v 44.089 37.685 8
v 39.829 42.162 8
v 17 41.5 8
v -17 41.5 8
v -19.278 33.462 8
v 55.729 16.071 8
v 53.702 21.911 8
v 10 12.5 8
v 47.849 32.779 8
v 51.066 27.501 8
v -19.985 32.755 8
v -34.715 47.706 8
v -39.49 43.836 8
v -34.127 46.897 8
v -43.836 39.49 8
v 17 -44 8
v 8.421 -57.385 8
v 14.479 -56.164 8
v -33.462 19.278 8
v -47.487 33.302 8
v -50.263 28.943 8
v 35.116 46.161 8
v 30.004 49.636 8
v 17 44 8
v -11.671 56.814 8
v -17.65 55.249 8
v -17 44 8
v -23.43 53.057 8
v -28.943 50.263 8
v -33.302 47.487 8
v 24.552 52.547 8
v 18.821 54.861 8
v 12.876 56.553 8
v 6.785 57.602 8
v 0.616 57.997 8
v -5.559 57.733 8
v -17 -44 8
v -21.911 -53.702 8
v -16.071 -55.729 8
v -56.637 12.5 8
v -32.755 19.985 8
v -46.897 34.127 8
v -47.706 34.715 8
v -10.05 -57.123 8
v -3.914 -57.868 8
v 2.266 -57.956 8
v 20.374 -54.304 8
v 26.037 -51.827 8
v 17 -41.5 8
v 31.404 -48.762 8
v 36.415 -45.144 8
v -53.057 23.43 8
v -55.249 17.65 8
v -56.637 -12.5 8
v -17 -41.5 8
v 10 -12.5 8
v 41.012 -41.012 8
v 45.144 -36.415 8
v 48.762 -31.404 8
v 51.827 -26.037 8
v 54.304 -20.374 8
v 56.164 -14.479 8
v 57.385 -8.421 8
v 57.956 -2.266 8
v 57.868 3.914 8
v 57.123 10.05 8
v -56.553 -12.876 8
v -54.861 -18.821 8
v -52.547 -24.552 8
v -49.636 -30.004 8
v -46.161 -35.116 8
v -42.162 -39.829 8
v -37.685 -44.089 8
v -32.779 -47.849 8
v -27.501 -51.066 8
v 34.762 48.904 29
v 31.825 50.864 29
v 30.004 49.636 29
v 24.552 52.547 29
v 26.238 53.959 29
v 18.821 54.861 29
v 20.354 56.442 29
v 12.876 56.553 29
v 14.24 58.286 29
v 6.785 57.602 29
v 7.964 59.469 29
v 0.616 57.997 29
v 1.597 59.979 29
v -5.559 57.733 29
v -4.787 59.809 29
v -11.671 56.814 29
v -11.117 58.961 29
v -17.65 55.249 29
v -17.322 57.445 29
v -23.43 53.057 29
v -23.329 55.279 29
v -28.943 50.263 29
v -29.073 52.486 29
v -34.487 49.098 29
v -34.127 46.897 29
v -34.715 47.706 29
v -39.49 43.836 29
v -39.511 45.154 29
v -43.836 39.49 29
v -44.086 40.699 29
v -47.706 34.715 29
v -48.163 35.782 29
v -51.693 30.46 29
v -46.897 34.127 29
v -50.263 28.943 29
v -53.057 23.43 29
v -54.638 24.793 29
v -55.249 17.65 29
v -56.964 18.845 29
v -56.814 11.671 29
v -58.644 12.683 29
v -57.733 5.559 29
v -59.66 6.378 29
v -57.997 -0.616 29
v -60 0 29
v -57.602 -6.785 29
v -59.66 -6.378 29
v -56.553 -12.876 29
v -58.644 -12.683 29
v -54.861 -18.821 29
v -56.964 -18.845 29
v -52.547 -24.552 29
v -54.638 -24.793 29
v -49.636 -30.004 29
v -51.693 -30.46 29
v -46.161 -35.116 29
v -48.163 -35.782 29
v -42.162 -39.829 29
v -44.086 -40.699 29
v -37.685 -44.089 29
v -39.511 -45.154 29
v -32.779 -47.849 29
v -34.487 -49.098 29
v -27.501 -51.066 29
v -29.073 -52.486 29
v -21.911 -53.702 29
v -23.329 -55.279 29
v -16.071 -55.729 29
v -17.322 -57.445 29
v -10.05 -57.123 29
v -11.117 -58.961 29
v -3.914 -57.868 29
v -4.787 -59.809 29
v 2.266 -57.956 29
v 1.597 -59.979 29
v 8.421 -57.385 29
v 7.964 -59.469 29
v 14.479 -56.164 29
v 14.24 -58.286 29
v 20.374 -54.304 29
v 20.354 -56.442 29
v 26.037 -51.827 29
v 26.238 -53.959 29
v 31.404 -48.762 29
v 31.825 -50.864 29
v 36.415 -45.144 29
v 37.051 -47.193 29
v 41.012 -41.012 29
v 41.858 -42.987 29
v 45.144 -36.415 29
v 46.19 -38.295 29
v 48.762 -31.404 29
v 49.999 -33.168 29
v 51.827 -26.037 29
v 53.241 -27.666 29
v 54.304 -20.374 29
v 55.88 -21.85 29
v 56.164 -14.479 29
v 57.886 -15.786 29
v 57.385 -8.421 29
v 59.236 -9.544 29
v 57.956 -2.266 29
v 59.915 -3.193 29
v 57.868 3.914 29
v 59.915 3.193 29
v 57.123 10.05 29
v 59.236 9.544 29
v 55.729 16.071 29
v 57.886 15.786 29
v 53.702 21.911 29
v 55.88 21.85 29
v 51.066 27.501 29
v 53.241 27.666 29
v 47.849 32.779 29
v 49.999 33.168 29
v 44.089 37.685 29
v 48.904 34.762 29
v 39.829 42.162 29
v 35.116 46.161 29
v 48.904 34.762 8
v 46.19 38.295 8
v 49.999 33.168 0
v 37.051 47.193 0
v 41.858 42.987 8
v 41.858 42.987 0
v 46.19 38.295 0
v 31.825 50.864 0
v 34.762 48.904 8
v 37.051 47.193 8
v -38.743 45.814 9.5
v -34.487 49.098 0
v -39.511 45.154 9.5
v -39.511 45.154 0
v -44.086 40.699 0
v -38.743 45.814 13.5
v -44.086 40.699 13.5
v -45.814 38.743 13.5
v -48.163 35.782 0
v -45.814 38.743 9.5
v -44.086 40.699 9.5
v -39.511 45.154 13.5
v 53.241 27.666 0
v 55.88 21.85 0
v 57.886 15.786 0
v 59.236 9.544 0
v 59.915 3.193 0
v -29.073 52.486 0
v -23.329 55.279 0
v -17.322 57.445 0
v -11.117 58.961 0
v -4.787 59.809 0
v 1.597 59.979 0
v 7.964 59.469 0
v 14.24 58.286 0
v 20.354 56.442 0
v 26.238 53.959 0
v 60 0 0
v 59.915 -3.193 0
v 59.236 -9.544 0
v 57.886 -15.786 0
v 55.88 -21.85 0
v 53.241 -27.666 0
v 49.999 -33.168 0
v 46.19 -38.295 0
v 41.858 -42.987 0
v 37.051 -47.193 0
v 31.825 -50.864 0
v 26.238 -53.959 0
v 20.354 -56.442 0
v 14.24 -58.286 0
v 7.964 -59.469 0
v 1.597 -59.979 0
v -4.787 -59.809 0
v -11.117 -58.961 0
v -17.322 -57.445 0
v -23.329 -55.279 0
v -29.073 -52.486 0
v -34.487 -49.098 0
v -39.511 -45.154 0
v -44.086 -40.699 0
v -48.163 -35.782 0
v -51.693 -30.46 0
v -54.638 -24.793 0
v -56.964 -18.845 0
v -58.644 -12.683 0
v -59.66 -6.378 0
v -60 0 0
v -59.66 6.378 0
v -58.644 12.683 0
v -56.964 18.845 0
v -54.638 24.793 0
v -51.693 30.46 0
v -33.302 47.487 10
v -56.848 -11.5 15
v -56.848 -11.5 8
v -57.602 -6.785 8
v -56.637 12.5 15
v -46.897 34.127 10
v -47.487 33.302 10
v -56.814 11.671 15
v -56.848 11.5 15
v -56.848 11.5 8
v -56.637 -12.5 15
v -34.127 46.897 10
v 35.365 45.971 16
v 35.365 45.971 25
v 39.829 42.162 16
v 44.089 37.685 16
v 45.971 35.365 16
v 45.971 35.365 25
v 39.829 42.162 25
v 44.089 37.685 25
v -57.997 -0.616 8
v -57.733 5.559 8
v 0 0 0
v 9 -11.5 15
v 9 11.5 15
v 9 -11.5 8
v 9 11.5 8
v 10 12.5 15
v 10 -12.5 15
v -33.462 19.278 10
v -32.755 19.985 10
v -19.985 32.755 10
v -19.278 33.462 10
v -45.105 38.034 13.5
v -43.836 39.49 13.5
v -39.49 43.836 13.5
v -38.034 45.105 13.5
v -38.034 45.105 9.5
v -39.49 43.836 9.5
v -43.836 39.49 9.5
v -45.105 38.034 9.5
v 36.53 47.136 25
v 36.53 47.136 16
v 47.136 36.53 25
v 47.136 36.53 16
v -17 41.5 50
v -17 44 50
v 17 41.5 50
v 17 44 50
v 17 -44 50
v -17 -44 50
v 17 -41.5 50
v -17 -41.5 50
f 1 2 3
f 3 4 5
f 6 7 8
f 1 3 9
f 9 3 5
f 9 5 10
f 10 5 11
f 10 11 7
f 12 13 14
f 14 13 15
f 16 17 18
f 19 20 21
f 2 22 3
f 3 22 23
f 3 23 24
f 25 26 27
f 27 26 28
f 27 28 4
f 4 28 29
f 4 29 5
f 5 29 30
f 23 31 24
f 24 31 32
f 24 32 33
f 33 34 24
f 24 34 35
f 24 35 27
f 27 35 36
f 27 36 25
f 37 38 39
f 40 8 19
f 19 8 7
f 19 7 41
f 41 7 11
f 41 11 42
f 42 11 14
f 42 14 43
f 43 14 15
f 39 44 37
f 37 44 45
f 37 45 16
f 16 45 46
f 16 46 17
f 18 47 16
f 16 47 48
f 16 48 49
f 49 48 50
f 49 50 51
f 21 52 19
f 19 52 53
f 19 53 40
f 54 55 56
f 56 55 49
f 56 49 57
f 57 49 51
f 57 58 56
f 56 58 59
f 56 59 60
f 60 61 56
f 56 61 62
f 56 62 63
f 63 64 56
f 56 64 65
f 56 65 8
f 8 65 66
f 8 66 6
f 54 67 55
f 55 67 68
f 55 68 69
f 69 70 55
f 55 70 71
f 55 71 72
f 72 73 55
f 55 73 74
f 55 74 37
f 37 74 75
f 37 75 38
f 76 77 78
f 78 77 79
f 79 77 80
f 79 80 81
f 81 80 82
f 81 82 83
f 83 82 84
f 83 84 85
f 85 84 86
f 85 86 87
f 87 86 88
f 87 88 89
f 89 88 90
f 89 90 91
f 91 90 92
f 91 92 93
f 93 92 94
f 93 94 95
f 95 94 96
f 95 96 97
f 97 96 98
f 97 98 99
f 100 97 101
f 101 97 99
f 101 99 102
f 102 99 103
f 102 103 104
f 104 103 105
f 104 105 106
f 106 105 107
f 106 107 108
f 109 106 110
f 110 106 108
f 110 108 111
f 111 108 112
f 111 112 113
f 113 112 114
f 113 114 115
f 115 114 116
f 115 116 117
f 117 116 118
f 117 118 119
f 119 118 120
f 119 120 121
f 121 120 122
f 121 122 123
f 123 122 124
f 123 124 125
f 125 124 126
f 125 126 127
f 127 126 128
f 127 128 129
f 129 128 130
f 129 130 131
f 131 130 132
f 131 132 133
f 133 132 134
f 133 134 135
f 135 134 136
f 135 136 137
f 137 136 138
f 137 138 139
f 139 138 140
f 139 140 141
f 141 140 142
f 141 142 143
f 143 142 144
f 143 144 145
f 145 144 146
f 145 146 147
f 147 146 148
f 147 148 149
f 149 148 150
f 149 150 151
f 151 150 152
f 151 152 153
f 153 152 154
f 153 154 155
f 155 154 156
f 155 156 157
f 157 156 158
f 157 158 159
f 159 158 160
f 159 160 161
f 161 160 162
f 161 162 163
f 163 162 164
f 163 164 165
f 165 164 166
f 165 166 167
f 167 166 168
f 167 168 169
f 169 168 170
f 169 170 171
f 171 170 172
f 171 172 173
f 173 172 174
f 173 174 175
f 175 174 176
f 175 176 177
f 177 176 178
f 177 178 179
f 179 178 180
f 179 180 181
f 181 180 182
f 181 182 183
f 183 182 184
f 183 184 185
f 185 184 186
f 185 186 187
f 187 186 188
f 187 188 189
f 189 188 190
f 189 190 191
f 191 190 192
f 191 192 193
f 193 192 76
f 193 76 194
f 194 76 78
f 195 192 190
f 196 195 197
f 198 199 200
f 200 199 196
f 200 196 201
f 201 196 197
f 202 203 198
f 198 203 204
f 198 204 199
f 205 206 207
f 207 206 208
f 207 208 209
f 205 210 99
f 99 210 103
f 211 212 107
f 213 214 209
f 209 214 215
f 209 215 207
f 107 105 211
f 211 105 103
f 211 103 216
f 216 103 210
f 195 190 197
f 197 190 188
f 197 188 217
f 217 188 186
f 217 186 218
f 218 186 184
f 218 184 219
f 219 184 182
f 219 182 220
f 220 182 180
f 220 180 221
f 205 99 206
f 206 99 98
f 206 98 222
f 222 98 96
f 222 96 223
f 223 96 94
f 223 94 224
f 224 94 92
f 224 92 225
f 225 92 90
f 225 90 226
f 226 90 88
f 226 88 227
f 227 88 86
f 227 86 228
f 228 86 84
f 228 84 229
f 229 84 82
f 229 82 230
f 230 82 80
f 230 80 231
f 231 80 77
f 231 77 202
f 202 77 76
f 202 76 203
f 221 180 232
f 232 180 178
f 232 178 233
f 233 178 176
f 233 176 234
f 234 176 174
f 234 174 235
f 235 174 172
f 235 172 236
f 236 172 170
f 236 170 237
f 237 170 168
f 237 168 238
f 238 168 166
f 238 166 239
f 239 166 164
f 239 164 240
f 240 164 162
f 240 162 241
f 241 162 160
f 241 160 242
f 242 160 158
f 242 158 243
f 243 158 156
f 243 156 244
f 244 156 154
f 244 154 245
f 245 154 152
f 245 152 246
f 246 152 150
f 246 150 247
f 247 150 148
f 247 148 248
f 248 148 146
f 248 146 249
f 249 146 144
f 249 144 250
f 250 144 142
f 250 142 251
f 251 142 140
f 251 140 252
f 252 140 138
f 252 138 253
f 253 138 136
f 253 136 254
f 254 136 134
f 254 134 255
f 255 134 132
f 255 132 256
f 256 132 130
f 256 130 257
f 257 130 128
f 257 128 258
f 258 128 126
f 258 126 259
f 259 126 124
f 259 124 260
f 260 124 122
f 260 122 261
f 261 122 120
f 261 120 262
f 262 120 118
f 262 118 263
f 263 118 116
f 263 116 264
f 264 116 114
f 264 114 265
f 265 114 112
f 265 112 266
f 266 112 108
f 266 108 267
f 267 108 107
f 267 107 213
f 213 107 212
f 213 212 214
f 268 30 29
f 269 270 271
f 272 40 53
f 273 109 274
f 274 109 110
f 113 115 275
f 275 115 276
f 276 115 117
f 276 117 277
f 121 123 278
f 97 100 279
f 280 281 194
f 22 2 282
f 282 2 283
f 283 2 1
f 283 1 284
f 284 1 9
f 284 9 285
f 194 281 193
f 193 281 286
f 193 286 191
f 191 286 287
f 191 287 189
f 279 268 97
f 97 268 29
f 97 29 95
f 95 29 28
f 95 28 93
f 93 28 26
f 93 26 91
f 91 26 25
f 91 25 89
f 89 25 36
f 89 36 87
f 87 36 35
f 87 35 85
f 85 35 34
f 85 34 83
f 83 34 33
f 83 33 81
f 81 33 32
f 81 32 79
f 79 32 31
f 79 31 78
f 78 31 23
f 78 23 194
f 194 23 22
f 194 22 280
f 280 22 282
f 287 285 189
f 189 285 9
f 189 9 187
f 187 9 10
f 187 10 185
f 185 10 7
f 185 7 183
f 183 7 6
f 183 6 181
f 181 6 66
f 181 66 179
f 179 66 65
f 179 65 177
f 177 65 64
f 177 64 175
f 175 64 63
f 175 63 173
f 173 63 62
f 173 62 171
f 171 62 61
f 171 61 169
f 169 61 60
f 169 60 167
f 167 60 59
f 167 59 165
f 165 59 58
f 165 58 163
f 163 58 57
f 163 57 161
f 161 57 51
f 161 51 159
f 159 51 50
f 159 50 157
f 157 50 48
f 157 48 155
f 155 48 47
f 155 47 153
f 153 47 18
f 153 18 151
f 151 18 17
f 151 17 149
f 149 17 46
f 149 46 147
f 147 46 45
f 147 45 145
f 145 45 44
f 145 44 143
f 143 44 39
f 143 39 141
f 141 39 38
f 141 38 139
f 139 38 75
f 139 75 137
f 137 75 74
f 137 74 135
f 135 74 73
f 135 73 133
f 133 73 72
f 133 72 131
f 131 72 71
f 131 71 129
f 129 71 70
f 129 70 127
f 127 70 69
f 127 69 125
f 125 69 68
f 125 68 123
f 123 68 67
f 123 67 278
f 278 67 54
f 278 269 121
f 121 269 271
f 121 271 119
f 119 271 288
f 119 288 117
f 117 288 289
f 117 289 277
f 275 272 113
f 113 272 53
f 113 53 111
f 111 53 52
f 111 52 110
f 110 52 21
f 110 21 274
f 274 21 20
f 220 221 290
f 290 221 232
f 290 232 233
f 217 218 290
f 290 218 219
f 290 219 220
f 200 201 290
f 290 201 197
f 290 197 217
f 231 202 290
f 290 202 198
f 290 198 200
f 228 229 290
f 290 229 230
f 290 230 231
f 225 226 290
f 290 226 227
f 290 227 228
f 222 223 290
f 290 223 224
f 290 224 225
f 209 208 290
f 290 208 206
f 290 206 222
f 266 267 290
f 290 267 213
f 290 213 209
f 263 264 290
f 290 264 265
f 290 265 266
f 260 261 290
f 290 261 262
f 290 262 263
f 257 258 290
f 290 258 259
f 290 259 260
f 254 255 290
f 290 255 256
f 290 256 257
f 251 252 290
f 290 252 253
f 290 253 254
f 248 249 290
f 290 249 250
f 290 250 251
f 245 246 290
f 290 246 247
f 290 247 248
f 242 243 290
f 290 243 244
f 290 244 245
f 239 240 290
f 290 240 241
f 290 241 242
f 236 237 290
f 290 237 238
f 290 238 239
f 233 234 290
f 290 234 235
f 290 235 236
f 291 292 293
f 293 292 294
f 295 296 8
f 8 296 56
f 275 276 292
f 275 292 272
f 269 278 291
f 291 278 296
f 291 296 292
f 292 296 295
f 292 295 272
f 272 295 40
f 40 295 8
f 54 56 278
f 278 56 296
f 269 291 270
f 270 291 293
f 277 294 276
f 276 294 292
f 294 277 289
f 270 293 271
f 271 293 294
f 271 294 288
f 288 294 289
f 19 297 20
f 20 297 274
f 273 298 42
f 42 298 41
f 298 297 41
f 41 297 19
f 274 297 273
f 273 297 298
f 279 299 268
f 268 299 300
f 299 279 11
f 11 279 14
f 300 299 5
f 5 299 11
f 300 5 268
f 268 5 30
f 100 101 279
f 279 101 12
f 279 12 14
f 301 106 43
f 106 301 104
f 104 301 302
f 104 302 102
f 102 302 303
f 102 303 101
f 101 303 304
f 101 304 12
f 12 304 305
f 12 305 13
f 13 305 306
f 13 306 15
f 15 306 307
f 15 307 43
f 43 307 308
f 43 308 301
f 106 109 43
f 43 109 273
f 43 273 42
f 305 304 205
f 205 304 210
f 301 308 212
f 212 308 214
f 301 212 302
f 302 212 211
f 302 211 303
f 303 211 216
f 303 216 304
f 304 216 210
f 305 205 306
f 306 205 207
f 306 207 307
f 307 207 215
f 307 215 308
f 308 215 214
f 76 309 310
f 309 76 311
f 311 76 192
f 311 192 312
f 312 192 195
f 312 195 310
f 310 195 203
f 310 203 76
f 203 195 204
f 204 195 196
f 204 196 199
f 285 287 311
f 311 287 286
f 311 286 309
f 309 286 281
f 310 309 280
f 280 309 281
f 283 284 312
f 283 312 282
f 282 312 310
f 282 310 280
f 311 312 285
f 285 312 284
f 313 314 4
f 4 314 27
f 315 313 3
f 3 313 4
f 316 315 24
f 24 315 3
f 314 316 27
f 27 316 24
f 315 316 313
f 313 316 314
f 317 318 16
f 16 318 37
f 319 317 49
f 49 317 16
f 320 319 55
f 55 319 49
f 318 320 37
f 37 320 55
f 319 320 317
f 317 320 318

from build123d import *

# Parameters (mm, degrees)
CROQUIS1_R              = 60
SALIENTE_EXTRUIR1_DEPTH = 8
SALIENTE_EXTRUIR2_DEPTH = 7
CROQUIS3_R              = 60
CROQUIS3_R_2            = 58
SALIENTE_EXTRUIR3_DEPTH = 21
SALIENTE_EXTRUIR4_DEPTH = 2
CORTAR_EXTRUIR1_DEPTH   = 88.412813706
CORTAR_EXTRUIR2_START   = 1.5
CORTAR_EXTRUIR2_DEPTH   = 4
CORTAR_EXTRUIR3_DEPTH   = 88.412813706
CROQUIS9_W              = 9
CROQUIS9_H              = 15
CORTAR_EXTRUIR4_DEPTH   = 4
CROQUIS4_W              = 34
CROQUIS4_H              = 2.5
SALIENTE_EXTRUIR5_DEPTH = 42


with BuildPart() as part:
    # Croquis1 → Saliente-Extruir1 (new body)
    with BuildSketch(Plane.XY):
        Circle(CROQUIS1_R)
    extrude(amount=SALIENTE_EXTRUIR1_DEPTH)

    # Croquis2 → Saliente-Extruir2 (add)
    with BuildSketch(Plane.XY.offset(8)):
        Polygon((-56, 11.5), (9, 11.5), (9, -11.5), (-56, -11.5), (-57, -11.5), (-57, -12.5), (10, -12.5), (10, 12.5), (-57, 12.5), (-57, 11.5), align=None)
    extrude(amount=SALIENTE_EXTRUIR2_DEPTH)

    # Croquis3 → Saliente-Extruir3 (add)
    with BuildSketch(Plane.XY.offset(8)):
        Circle(CROQUIS3_R)
        with Locations(Location((0, 0, 0), (0, 0, 168.56384578))):
            Circle(CROQUIS3_R_2, mode=Mode.SUBTRACT)
    extrude(amount=SALIENTE_EXTRUIR3_DEPTH)

    # Croquis5 → Saliente-Extruir4 (add)
    with BuildSketch(Plane.XY.offset(8)):
        with BuildLine():
            Line((-19.984781547, 32.755130015), (-34.126917171, 46.897265639))
            ThreePointArc((-34.126917171, 46.897265639), (-41.012193309, 41.012193309), (-46.897265639, 34.126917171))
            Line((-46.897265639, 34.126917171), (-32.755130015, 19.984781547))
            Line((-32.755130015, 19.984781547), (-33.462236796, 19.277674766))
            Line((-33.462236796, 19.277674766), (-48.204317574, 34.019755543))
            ThreePointArc((-48.204317574, 34.019755543), (-41.71930009, 41.71930009), (-34.019755543, 48.204317574))
            Line((-34.019755543, 48.204317574), (-19.277674766, 33.462236796))
            Line((-19.277674766, 33.462236796), (-19.984781547, 32.755130015))
        make_face()
    extrude(amount=SALIENTE_EXTRUIR4_DEPTH)

    # Croquis6 → Cortar-Extruir1 (cut, through all)
    with BuildSketch(Plane.XY.offset(8)):
        with BuildLine():
            Line((-47.705839185, 34.715312294), (-46.897265639, 34.126917171))
            ThreePointArc((-46.897265639, 34.126917171), (-41.012193309, 41.012193309), (-34.126917171, 46.897265639))
            Line((-34.126917171, 46.897265639), (-34.715312294, 47.705839185))
            ThreePointArc((-34.715312294, 47.705839185), (-41.71930009, 41.71930009), (-47.705839185, 34.715312294))
        make_face()
    extrude(amount=CORTAR_EXTRUIR1_DEPTH, mode=Mode.SUBTRACT)

    # Croquis7 → Cortar-Extruir2 (cut)
    with BuildSketch(Plane.XY.offset(8).offset(CORTAR_EXTRUIR2_START)):
        Polygon((-35.355339059, 42.426406871), (-42.426406871, 49.497474683), (-49.497474683, 42.426406871), (-42.426406871, 35.355339059), align=None)
    extrude(amount=CORTAR_EXTRUIR2_DEPTH, mode=Mode.SUBTRACT)

    # Croquis8 → Cortar-Extruir3 (cut, through all)
    with BuildSketch(Plane.XY.offset(8)):
        with BuildLine():
            Line((48.904069139, 34.761933515), (34.761933515, 48.904069139))
            ThreePointArc((34.761933515, 48.904069139), (42.426406871, 42.426406871), (48.904069139, 34.761933515))
        make_face()
    extrude(amount=CORTAR_EXTRUIR3_DEPTH, mode=Mode.SUBTRACT)

    # Croquis9 → Cortar-Extruir4 (cut)
    with BuildSketch(Plane(origin=(41.833001327, 41.833001327, 0), x_dir=(0, 0, -1), z_dir=(0.7071067811865464, 0.7071067811865488, 0))):
        with Locations((-20.5, 0)):
            Rectangle(CROQUIS9_W, CROQUIS9_H)
    extrude(amount=-CORTAR_EXTRUIR4_DEPTH, mode=Mode.SUBTRACT)

    # Croquis4 → Saliente-Extruir5 (add)
    with BuildSketch(Plane.XY.offset(8)):
        with Locations((0, 42.75)):
            Rectangle(CROQUIS4_W, CROQUIS4_H)
        with Locations((0, -42.75)):
            Rectangle(CROQUIS4_W, CROQUIS4_H)
    extrude(amount=SALIENTE_EXTRUIR5_DEPTH)


solid = part.part
